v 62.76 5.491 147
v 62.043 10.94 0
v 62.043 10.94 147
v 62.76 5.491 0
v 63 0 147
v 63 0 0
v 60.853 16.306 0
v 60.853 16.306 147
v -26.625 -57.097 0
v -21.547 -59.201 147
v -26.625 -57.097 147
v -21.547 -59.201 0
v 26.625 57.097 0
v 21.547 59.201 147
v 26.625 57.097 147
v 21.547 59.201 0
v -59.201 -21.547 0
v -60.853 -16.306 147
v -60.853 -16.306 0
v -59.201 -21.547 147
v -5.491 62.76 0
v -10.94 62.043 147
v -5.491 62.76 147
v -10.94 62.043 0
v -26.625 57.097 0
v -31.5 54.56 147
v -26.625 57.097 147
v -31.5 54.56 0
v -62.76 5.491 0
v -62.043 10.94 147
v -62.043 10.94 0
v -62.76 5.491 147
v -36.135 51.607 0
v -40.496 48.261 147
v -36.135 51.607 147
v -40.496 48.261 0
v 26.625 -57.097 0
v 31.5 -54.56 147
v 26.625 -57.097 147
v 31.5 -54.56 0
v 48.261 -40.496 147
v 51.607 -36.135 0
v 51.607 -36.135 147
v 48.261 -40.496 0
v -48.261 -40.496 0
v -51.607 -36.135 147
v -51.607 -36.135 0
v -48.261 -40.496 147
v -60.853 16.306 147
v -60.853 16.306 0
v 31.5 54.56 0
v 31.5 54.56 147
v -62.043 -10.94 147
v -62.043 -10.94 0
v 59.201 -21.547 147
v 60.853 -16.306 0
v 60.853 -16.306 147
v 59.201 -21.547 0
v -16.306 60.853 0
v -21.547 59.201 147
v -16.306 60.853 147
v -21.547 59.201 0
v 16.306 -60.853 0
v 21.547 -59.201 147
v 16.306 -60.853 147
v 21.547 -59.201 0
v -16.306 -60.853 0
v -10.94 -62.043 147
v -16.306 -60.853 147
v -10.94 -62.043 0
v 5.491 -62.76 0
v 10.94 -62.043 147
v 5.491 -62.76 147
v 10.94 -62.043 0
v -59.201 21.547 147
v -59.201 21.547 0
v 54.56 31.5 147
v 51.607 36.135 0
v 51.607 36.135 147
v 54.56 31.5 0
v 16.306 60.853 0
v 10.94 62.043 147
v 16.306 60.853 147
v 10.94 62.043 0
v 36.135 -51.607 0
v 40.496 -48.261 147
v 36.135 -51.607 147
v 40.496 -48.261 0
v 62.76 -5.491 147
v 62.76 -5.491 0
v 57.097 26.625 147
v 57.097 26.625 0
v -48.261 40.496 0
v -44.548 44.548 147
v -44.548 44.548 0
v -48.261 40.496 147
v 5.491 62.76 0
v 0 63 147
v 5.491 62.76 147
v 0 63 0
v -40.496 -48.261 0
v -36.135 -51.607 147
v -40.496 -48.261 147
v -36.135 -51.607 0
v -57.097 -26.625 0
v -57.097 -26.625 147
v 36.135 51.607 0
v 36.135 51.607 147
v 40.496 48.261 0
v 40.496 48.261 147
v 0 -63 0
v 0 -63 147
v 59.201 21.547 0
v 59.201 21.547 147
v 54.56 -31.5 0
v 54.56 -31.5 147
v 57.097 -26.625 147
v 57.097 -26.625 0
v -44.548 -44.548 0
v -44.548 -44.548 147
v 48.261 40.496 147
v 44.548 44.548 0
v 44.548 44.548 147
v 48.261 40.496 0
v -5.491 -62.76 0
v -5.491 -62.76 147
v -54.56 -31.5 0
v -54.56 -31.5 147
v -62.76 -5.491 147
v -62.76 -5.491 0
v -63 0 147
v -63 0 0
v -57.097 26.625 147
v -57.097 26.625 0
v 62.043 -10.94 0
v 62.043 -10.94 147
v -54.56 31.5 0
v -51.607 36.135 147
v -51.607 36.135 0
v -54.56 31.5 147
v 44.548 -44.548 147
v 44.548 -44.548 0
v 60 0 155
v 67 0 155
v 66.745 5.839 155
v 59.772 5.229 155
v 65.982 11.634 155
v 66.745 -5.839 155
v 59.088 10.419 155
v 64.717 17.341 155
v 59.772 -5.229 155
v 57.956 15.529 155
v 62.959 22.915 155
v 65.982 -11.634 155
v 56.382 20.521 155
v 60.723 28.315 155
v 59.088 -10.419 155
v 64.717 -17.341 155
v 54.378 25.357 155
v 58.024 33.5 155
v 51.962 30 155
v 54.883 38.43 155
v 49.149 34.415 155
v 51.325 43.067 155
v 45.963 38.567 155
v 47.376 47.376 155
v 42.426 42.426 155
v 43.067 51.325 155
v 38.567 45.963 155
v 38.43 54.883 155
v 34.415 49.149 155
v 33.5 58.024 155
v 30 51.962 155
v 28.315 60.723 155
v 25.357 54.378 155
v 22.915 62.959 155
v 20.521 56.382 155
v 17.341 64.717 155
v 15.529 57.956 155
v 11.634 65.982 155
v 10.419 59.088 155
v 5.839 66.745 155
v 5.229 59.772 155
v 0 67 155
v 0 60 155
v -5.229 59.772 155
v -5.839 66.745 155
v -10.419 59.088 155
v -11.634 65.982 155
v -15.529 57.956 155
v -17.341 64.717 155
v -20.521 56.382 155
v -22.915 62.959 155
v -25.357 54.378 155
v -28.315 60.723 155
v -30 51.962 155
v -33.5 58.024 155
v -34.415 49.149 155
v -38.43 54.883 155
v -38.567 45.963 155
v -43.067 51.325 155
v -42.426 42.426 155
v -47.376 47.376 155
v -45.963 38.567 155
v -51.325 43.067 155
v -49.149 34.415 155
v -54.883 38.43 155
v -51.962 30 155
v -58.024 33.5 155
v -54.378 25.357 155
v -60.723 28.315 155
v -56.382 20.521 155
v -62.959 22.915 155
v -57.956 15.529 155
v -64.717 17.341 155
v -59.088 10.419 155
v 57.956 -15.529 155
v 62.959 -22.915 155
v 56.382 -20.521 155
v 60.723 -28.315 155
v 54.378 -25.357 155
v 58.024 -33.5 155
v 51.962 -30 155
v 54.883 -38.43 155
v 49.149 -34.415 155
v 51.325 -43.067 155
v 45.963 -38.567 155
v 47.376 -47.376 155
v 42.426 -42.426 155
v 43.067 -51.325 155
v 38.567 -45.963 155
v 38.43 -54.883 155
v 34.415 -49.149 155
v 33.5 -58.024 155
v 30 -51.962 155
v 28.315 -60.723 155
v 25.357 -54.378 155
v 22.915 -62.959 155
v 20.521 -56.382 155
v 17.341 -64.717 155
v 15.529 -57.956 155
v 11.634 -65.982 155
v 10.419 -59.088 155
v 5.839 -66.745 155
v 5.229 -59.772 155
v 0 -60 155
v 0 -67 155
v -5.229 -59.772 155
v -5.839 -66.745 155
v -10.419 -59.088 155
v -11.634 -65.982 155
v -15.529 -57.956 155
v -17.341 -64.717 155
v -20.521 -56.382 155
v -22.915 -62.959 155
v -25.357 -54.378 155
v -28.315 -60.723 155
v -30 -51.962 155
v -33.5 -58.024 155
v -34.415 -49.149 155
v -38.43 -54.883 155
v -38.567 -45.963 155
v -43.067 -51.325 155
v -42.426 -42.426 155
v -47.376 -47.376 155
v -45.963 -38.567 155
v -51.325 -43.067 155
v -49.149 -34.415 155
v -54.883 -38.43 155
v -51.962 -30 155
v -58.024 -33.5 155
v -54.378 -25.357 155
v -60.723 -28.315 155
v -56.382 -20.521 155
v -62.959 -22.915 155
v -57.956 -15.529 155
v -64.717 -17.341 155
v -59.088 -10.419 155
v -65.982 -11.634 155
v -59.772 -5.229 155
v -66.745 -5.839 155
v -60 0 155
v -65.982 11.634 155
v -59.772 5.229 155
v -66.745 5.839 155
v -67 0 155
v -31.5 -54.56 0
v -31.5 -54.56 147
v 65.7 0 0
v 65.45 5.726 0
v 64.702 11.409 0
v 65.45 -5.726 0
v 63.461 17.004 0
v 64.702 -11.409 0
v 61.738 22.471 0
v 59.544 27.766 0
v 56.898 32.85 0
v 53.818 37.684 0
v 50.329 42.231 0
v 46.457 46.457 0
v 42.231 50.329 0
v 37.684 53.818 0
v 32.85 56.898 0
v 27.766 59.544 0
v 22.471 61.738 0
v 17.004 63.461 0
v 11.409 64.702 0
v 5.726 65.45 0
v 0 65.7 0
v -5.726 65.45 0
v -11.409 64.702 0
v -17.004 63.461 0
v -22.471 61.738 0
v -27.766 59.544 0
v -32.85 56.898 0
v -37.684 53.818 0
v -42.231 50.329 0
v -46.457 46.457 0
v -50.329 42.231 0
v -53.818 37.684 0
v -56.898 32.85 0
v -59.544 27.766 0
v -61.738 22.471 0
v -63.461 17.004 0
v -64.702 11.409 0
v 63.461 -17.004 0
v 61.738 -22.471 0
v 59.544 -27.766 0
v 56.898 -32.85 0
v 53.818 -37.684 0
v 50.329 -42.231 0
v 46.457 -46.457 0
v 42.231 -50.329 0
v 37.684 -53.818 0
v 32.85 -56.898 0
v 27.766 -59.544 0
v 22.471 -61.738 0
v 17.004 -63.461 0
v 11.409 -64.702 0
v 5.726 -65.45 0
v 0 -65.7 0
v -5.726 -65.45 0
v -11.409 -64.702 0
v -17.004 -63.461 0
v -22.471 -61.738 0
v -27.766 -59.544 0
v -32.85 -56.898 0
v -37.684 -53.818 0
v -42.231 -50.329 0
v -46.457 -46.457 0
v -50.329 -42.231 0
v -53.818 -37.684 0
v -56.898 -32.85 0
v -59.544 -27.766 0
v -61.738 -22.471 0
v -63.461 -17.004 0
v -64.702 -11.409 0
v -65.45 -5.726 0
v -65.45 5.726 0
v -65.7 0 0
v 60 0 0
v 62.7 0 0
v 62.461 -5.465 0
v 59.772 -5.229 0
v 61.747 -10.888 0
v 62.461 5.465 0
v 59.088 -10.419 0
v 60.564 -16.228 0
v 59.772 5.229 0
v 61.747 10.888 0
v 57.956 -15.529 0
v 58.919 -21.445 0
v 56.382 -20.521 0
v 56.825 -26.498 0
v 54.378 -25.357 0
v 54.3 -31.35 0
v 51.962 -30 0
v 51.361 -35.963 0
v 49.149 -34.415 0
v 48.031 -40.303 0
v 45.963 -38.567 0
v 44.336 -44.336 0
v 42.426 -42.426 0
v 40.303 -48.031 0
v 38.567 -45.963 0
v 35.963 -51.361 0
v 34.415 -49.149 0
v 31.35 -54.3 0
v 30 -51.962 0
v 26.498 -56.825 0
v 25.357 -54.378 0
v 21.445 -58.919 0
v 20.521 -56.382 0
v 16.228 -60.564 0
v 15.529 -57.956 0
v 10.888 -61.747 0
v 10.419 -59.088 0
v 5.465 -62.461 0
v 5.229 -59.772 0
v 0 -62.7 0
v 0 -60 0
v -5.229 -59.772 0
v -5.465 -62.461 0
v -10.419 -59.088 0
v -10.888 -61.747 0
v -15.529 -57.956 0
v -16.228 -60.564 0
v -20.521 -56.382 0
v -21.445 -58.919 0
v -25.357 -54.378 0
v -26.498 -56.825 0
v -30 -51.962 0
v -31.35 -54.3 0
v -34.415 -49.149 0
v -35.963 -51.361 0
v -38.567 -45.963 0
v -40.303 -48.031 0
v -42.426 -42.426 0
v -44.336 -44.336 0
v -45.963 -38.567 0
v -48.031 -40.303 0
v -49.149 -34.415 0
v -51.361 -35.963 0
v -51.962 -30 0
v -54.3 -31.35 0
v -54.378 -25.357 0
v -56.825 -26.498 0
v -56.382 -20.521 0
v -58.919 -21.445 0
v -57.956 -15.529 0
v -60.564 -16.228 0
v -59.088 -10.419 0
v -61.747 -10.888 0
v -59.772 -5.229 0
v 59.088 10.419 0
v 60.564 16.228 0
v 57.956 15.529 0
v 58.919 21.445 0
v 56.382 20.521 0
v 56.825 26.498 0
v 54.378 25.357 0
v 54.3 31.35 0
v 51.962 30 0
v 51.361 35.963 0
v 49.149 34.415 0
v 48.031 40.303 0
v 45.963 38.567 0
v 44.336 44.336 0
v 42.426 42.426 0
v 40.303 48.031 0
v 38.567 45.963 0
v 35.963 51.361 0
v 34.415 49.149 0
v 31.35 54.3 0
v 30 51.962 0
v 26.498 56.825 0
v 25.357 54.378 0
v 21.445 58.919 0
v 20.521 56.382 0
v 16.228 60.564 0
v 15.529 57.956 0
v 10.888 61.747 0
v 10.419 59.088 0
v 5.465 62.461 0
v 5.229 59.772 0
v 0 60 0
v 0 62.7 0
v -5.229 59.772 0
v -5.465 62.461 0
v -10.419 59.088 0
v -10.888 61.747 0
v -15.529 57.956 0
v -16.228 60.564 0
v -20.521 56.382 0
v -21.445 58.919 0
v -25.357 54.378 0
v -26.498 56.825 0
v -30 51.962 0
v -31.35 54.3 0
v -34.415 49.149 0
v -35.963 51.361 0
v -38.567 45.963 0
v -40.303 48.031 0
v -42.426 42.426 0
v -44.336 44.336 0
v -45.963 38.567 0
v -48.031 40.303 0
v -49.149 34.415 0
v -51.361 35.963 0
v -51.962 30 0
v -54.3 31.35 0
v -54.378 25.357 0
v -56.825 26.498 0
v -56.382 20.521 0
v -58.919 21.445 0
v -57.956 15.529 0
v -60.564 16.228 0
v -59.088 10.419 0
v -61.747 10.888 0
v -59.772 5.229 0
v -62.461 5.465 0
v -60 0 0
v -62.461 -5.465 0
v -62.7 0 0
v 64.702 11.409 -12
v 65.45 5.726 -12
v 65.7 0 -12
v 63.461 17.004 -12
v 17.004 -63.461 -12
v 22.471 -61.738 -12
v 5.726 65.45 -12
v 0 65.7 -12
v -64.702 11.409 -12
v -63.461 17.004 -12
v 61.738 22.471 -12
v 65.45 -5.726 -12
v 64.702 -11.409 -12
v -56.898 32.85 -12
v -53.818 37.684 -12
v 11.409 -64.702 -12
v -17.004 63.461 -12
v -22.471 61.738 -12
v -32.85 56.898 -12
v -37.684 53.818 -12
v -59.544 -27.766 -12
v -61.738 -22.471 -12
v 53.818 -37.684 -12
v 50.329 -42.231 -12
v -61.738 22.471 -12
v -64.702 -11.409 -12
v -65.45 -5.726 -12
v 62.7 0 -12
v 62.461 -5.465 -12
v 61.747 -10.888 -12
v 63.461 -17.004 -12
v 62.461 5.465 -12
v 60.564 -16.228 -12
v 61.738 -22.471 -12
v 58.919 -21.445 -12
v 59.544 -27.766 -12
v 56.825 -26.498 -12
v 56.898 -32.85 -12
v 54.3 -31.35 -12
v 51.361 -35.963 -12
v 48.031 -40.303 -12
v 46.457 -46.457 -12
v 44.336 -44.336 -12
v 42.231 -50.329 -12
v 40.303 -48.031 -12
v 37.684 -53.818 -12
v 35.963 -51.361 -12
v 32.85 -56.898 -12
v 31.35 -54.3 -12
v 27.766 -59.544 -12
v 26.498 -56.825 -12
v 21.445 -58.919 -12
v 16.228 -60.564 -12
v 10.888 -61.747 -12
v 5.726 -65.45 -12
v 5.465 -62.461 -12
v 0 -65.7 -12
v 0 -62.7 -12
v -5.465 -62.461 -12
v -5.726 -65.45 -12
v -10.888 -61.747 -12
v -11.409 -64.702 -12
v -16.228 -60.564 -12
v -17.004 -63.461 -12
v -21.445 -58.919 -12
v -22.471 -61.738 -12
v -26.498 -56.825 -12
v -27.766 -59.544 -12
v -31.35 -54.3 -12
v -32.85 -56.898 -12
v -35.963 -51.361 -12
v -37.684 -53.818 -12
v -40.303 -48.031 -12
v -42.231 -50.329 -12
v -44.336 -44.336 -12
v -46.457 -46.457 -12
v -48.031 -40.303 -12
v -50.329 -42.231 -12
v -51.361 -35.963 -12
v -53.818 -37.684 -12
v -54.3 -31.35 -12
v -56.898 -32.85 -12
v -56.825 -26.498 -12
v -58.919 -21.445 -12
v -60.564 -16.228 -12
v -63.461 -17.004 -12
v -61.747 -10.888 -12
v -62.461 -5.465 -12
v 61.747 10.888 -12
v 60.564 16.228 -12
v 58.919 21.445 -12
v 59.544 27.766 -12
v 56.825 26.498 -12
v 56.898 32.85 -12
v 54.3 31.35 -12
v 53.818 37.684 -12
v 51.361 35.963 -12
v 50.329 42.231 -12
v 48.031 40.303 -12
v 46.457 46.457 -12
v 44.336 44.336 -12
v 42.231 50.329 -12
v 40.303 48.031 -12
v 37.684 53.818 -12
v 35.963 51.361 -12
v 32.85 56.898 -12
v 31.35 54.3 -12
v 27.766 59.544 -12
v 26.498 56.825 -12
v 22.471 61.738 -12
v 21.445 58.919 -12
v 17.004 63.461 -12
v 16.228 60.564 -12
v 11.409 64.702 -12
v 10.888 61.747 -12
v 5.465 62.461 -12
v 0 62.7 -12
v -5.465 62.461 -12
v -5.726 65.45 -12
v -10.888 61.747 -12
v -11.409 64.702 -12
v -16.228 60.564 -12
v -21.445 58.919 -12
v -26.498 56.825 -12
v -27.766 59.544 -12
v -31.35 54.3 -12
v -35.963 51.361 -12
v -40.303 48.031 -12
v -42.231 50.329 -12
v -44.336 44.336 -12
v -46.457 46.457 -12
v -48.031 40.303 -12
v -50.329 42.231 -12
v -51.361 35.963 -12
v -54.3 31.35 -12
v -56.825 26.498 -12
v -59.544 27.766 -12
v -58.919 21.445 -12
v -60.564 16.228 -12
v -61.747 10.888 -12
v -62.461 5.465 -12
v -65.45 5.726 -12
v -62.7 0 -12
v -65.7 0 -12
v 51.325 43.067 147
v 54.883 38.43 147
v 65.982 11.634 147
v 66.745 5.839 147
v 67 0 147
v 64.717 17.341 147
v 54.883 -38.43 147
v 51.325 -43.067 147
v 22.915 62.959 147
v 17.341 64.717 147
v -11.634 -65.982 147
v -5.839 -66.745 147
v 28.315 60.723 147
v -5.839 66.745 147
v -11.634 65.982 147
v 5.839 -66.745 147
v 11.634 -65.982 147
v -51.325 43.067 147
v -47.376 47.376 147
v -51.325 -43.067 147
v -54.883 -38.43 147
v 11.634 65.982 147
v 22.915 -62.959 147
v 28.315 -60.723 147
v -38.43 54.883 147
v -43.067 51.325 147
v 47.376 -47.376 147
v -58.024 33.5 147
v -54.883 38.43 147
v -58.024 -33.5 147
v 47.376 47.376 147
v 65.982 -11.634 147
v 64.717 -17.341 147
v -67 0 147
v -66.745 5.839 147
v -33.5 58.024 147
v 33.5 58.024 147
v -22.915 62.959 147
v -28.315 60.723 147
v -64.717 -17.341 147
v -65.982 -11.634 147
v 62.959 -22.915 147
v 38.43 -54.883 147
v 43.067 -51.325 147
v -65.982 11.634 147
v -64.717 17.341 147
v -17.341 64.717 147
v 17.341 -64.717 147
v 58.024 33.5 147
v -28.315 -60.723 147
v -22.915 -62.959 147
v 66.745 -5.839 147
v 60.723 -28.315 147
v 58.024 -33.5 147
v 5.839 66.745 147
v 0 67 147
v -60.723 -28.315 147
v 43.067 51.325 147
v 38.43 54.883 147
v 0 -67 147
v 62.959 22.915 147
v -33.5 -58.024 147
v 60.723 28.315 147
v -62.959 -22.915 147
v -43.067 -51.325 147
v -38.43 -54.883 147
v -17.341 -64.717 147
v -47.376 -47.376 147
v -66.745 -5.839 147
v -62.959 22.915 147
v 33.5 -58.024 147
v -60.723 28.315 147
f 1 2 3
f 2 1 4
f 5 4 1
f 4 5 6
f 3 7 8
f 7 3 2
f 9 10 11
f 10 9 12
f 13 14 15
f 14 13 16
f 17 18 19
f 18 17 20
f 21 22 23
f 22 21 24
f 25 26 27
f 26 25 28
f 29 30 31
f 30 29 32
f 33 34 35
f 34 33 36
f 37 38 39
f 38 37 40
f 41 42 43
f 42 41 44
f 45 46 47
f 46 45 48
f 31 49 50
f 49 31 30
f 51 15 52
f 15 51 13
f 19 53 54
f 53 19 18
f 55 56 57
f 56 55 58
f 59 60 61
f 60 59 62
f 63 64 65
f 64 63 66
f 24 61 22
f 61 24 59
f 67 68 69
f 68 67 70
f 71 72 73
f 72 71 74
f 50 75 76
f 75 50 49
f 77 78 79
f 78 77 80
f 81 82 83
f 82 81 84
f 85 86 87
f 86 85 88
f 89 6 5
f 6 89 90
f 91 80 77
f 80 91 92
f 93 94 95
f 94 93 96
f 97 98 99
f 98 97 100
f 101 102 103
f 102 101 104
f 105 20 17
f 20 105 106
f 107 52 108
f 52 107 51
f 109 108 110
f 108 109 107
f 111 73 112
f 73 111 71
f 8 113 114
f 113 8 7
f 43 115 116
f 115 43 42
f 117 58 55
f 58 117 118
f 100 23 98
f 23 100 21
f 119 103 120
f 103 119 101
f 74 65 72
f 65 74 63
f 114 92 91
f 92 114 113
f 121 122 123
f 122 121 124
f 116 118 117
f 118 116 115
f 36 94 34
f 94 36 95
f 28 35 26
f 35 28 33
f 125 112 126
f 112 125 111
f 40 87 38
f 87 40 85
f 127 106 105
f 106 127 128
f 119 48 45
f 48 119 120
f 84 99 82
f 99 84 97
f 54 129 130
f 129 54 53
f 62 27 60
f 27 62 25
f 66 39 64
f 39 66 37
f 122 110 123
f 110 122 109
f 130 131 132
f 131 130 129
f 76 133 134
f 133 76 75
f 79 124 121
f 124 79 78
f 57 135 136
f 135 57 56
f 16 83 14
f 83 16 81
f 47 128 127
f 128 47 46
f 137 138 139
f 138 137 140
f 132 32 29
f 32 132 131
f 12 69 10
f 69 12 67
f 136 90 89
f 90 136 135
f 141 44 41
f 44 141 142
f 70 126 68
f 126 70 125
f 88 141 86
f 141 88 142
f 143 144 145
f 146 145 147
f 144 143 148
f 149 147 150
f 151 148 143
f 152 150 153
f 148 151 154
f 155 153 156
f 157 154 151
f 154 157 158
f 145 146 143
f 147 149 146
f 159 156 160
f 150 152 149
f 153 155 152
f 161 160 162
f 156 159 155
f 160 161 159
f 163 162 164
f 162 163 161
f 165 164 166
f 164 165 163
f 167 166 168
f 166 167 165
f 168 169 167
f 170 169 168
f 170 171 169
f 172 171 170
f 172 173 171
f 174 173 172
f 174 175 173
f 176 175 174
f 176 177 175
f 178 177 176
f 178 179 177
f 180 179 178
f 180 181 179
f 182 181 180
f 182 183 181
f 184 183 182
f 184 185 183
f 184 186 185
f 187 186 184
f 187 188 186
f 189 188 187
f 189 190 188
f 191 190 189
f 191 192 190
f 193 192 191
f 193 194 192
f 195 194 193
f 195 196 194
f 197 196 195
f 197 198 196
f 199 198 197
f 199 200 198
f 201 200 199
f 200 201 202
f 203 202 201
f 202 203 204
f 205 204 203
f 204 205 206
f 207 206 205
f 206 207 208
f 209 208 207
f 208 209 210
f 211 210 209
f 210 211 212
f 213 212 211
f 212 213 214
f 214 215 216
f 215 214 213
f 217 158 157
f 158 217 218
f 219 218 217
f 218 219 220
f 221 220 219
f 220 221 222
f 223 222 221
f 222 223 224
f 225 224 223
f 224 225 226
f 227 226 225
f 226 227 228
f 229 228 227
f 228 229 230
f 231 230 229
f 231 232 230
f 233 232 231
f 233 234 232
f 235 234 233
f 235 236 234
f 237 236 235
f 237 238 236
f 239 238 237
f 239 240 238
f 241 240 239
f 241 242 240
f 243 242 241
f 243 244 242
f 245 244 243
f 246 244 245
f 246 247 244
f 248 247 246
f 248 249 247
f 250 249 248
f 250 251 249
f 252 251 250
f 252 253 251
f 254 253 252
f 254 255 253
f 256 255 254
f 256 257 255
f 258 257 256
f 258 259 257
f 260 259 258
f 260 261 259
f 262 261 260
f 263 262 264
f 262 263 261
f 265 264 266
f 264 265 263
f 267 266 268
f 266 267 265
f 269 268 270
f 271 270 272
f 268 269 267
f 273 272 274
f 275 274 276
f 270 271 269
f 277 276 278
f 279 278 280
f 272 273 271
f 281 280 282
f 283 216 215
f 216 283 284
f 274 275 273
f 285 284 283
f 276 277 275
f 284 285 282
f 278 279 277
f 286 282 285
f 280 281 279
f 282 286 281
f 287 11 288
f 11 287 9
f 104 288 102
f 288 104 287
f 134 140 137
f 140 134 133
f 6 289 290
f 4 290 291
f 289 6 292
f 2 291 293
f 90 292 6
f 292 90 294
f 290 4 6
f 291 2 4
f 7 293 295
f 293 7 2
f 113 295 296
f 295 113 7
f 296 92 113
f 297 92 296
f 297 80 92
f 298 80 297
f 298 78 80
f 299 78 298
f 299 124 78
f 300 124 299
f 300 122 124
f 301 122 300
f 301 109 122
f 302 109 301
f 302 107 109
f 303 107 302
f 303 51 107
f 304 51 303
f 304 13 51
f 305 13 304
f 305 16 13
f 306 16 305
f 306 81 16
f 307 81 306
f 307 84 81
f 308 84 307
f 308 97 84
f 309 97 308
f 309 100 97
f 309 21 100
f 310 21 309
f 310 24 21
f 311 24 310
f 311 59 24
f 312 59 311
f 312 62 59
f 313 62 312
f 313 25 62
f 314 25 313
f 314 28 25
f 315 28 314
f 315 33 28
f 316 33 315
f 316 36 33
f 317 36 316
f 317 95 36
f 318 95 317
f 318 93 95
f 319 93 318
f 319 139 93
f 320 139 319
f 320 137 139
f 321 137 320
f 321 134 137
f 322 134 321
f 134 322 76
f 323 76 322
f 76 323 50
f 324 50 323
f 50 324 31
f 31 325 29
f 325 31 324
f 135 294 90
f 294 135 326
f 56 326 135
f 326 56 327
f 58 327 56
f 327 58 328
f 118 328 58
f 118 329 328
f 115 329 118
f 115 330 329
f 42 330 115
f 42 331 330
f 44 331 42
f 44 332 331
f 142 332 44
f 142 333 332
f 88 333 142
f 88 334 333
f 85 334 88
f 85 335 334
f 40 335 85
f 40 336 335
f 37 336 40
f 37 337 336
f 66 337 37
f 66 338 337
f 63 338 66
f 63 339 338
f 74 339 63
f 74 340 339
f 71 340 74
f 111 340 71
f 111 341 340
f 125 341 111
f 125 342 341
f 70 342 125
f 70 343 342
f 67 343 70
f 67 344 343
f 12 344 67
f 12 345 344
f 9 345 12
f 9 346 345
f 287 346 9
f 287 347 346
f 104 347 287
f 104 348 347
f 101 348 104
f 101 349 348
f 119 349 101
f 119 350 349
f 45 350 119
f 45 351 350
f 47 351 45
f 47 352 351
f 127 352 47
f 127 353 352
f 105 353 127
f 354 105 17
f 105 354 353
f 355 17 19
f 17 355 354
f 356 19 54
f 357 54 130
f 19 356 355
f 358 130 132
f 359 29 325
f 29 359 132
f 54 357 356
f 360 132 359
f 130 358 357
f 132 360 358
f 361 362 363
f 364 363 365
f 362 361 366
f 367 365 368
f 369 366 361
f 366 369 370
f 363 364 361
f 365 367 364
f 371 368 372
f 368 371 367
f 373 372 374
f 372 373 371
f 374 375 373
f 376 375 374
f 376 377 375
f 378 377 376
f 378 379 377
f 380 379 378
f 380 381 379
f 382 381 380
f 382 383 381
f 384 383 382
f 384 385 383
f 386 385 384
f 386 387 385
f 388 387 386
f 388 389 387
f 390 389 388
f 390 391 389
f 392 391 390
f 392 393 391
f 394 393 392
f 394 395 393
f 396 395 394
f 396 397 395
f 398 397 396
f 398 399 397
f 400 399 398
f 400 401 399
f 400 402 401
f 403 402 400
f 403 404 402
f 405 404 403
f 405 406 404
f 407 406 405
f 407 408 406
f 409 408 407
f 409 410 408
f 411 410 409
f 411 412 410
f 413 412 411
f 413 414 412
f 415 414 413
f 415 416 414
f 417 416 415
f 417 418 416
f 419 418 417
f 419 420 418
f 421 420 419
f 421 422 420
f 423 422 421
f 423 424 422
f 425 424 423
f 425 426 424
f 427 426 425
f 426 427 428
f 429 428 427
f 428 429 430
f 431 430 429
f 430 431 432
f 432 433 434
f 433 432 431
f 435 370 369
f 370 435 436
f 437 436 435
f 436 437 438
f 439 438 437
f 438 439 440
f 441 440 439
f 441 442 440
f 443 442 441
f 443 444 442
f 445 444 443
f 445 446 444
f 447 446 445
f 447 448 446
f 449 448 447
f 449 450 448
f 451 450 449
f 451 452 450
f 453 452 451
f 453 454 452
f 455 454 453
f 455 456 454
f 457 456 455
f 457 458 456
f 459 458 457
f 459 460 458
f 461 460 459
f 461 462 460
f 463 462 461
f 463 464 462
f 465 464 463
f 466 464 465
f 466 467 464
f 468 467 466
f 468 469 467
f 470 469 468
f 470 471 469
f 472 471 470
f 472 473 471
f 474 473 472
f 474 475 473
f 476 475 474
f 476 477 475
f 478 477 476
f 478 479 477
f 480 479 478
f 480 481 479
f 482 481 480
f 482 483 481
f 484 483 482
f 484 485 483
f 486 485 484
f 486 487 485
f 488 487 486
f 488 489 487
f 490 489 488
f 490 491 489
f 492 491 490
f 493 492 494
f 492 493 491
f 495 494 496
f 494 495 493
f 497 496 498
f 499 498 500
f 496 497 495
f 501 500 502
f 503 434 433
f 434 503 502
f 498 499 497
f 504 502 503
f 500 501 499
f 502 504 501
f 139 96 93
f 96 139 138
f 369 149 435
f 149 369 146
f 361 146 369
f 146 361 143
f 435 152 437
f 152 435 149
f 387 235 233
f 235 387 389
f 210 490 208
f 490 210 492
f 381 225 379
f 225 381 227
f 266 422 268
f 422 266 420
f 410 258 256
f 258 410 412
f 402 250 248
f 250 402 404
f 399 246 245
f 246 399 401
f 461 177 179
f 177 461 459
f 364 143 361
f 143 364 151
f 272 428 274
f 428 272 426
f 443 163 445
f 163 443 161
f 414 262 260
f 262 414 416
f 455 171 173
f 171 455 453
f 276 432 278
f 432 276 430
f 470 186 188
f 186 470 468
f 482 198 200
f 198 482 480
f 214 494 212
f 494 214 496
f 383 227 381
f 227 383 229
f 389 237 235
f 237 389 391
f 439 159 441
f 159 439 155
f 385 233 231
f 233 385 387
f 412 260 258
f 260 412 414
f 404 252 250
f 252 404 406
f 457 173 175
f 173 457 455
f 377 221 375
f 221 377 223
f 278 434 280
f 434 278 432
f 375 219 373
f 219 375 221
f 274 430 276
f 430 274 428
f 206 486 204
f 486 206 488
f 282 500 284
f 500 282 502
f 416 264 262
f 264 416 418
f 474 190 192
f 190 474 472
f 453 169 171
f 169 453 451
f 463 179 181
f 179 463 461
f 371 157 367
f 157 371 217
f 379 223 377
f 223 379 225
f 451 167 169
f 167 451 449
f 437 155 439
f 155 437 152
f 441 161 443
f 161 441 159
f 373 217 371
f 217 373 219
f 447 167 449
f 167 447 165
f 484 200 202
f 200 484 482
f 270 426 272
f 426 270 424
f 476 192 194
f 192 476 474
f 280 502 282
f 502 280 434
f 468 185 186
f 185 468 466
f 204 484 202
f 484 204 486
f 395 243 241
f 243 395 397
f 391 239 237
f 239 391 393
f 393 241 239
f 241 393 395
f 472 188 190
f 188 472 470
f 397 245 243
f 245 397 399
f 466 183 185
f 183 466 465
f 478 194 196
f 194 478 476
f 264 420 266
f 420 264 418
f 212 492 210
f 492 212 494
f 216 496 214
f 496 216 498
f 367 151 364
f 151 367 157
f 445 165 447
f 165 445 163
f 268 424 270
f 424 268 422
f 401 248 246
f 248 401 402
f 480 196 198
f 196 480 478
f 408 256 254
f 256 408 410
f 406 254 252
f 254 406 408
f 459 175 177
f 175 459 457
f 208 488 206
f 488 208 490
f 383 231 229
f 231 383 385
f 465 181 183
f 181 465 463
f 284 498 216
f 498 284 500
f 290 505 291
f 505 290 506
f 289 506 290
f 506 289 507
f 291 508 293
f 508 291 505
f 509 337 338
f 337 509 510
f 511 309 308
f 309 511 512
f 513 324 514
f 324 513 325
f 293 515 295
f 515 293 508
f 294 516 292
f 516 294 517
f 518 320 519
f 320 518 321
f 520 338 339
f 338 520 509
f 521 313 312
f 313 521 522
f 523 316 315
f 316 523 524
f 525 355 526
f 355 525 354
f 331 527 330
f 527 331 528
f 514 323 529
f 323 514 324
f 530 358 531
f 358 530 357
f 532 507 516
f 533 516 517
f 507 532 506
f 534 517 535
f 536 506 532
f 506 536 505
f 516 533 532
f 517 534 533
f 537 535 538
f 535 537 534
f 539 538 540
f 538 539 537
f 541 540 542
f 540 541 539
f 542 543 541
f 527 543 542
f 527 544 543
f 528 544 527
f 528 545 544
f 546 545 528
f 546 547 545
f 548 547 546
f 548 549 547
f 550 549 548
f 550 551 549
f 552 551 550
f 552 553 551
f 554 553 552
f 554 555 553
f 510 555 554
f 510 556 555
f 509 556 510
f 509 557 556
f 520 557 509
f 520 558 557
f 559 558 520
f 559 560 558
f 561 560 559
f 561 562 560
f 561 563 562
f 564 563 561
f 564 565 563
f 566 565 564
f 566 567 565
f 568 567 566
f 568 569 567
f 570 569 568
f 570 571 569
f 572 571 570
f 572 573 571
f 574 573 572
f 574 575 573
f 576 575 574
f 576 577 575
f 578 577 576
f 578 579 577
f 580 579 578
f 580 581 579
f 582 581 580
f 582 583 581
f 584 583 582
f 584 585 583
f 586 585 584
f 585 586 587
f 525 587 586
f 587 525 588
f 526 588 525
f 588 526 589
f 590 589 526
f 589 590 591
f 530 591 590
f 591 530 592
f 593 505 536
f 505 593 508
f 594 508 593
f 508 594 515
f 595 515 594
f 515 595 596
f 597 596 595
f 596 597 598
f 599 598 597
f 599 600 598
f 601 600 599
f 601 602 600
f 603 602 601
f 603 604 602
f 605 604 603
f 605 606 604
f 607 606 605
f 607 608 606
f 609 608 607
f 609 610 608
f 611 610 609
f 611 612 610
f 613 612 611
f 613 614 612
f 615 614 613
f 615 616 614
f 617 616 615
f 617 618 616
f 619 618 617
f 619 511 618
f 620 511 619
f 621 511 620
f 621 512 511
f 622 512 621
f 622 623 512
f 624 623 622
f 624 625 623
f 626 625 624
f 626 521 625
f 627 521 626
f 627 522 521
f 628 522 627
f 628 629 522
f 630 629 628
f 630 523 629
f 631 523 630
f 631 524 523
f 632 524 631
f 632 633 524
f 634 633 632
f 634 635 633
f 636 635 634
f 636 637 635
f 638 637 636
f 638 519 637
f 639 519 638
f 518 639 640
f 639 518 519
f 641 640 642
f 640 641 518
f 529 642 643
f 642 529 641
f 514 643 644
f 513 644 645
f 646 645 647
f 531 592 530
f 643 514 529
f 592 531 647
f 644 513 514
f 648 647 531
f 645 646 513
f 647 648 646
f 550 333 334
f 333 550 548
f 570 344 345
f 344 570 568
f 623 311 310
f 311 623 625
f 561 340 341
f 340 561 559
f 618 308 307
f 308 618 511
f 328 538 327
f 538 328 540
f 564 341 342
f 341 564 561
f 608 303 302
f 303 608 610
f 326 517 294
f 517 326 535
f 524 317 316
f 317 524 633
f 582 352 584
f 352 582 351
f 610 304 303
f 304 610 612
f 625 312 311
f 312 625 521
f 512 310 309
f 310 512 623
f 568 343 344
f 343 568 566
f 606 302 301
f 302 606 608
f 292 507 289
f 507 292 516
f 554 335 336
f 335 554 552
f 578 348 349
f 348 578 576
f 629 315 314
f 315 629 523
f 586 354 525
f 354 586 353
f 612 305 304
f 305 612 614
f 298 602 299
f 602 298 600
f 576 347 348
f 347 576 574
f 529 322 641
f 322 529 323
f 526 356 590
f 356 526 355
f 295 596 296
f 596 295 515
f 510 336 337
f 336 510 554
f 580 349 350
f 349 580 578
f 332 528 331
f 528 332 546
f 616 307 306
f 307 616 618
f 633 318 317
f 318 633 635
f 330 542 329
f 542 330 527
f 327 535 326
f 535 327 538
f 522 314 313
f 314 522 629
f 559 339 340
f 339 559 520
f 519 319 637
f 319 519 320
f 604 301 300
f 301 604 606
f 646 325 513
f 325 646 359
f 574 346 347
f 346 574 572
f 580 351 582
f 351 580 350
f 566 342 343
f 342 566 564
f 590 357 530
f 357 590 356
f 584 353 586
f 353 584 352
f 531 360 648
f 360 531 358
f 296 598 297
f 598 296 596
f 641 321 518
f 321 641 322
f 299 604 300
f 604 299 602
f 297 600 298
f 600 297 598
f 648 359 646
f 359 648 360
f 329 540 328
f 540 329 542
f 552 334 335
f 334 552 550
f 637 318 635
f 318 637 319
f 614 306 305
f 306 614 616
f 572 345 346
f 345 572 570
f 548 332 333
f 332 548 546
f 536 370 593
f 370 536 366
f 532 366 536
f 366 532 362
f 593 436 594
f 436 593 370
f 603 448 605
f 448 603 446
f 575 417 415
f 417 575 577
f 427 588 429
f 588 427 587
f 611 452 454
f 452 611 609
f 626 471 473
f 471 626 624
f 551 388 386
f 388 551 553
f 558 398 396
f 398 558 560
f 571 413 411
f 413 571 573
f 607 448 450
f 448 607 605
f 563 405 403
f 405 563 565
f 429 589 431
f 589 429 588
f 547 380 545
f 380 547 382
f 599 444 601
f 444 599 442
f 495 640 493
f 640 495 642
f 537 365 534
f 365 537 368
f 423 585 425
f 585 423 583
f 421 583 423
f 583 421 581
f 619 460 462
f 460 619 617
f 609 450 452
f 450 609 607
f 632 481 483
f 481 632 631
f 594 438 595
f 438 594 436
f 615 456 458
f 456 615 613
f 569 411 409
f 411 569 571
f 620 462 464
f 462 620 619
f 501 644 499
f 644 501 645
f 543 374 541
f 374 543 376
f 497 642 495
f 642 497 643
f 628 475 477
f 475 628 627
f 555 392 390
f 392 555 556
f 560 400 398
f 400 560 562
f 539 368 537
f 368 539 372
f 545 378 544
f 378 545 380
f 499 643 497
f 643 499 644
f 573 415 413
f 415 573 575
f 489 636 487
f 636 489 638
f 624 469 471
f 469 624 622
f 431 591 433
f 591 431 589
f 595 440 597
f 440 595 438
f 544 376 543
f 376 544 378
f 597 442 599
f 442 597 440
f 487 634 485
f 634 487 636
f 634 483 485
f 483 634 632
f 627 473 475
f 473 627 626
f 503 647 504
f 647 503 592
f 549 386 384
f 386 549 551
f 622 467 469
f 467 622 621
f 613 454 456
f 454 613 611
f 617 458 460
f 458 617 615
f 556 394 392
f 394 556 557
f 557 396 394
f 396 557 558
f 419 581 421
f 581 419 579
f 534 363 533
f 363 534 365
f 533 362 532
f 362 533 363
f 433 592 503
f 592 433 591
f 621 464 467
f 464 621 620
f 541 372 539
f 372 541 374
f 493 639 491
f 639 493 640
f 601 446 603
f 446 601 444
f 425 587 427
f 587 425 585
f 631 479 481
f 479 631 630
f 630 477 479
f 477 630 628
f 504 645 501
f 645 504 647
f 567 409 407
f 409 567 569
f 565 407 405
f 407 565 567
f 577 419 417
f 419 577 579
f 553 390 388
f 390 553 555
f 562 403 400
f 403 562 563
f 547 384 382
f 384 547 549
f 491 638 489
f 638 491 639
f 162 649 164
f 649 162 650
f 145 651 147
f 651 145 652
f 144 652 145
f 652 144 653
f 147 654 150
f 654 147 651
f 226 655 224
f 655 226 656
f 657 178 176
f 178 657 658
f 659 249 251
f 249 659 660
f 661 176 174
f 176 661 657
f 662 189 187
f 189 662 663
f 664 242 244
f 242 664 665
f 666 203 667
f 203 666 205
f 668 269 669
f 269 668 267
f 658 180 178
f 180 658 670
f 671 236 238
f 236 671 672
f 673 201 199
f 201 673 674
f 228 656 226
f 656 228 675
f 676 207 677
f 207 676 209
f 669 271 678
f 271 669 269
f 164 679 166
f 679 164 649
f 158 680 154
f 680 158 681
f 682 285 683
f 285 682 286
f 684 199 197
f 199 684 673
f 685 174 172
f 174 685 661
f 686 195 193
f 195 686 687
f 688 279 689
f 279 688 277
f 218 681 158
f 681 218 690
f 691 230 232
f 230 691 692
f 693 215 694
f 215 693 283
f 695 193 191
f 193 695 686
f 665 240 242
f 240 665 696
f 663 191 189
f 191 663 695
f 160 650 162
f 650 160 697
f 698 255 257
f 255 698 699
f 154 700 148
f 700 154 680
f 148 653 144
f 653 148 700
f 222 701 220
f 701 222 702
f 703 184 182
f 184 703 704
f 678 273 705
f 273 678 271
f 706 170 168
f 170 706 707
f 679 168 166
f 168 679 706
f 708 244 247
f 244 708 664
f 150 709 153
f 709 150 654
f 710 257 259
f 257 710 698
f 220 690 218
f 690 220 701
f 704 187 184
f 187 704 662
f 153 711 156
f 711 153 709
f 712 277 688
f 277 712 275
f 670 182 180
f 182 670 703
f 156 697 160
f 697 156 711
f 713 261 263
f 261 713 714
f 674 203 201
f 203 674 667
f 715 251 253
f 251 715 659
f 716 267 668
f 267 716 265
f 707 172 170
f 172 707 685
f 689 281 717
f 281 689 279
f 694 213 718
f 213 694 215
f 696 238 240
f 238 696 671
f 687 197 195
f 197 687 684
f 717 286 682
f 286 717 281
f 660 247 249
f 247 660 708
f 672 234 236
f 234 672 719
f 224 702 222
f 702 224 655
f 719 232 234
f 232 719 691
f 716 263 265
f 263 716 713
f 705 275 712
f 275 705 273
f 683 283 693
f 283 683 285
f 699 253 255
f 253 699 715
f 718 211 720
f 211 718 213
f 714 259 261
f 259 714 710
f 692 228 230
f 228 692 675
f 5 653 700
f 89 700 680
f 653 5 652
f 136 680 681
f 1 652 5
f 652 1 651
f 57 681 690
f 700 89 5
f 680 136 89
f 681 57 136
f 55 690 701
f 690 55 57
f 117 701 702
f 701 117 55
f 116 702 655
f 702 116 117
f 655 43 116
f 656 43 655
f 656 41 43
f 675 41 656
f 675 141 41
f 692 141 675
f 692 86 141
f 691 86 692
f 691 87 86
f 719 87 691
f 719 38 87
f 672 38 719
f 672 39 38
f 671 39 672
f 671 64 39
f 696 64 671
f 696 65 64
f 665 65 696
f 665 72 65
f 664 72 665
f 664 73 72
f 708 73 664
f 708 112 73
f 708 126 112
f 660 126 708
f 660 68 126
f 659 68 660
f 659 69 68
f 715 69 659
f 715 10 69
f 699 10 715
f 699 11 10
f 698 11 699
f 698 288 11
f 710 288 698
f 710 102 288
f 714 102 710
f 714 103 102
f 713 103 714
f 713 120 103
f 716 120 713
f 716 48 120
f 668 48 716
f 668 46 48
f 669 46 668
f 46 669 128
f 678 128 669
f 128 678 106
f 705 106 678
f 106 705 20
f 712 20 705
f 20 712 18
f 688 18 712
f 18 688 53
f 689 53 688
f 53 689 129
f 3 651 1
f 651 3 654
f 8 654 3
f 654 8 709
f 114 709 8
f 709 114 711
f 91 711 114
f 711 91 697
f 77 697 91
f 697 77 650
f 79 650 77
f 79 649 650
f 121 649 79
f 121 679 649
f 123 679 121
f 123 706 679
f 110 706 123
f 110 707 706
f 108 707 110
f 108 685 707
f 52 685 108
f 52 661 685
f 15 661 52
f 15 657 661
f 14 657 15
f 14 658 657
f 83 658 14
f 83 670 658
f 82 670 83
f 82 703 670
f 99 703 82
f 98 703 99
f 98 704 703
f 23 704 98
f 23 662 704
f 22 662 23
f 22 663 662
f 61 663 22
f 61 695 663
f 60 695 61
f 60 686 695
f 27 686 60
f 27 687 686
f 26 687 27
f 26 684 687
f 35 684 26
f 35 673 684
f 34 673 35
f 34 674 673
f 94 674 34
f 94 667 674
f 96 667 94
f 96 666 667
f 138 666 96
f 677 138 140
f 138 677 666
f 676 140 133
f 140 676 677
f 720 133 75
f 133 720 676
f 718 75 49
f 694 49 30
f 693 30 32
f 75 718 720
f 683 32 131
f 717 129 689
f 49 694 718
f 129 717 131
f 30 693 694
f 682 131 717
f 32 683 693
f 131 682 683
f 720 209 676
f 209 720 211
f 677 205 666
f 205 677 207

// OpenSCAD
// s_edf_120_thrust_tube.scad
// Thrust tube for Serenity Rev N 120mm rear EDF.
//
// Remixed from Thingiverse thing:2838324 (120mm fuselage EDF).
// This tube channels exhaust from the EDF exit face through the
// aft fuselage (station ~440mm) to the rear iris nozzle (station ~600mm).
//
// Coordinate system: +Z = aft (exhaust direction).
// Z=0 = forward face of thrust tube (mates to EDF casing aft lip / motor mount ring).
// Z=TUBE_L = aft bonding face (mates to rear_nozzle_frame.stl base ring).
//
// Integration interfaces:
//   Forward (Z=0):     forward spigot ID = EDF casing OD; locates tube on EDF exit.
//   Aft (Z=TUBE_L):    bonding flange ring bonds to rear_nozzle_frame.stl base.
//
// Station reference (from nose):
//   Station ~440mm: EDF exhaust face → Z=0 of this part
//   Station ~600mm: rear nozzle frame base → Z=TUBE_L
//   Total span: ~160mm → TUBE_L = 155mm (5mm overlap at each end)
//
// Print: PETG, 0.20mm layers, 20% gyroid infill.
// Note: orient with tube axis vertical on printer for best layer adhesion.
// No support required if printed tube-axis vertical.

// ── Geometry parameters ────────────────────────────────────────────────────

BORE_ID      = 120;   // [mm] internal bore (matches EDF fan bore)
WALL         =   3;   // [mm] tube wall thickness → OD = BORE_ID + 2×WALL
TUBE_L       = 155;   // [mm] total tube length (see station notes above)

// Forward spigot: thin sleeve that slips over the EDF casing aft OD
// The EDF casing outer diameter is nominally ~125mm (varies by brand);
// adjust SPIGOT_ID if your 120mm EDF casing OD differs.
EDF_CASING_OD = 125;  // [mm] EDF casing outer diameter — adjust to match actual unit
SPIGOT_ID     = EDF_CASING_OD + 0.4; // slip-fit clearance
SPIGOT_WALL   =   3;  // [mm] spigot sleeve wall
SPIGOT_L      =  12;  // [mm] spigot engagement length (overlaps EDF casing)

// Aft bonding flange: widens to grip against rear_nozzle_frame.stl base ring.
// rear_nozzle_frame base ring inner bore is assumed ~128mm — verify in slicer.
FLANGE_OD     = 134;  // [mm] bonding flange outer diameter
FLANGE_L      =   8;  // [mm] axial depth of bonding flange

// Lightening slots in tube wall (optional aero/mass reduction — set to 0 to disable)
SLOT_COUNT    =   0;  // number of axial slots in tube wall (0 = solid tube)
SLOT_W        =   8;  // [mm] slot width
SLOT_L        = 100;  // [mm] slot length (centred on tube)

$fn = 72;

// ── Derived values ─────────────────────────────────────────────────────────

TUBE_OD = BORE_ID + 2 * WALL;          // = 126mm
SPIGOT_OD = SPIGOT_ID + 2 * SPIGOT_WALL;

// ── Modules ────────────────────────────────────────────────────────────────

module main_tube() {
    difference() {
        cylinder(h = TUBE_L, r = TUBE_OD / 2);
        // bore
        translate([0, 0, -0.5])
            cylinder(h = TUBE_L + 1, r = BORE_ID / 2);
        // axial lightening slots
        if (SLOT_COUNT > 0)
            for (i = [0 : SLOT_COUNT - 1])
                rotate([0, 0, i * 360 / SLOT_COUNT])
                translate([TUBE_OD / 2 - WALL / 2, 0, TUBE_L / 2])
                    cube([WALL + 1, SLOT_W, SLOT_L], center = true);
    }
}

module forward_spigot() {
    // sleeve at Z=0 end that overlaps EDF casing aft lip
    difference() {
        cylinder(h = SPIGOT_L, r = SPIGOT_OD / 2);
        // inner bore clears EDF casing
        translate([0, 0, -0.5])
            cylinder(h = SPIGOT_L + 1, r = SPIGOT_ID / 2);
    }
}

module aft_bonding_flange() {
    // thickened ring at aft end for epoxy bond to rear_nozzle_frame base ring
    translate([0, 0, TUBE_L - FLANGE_L])
    difference() {
        cylinder(h = FLANGE_L, r = FLANGE_OD / 2);
        translate([0, 0, -0.5])
            cylinder(h = FLANGE_L + 1, r = BORE_ID / 2);
    }
}

// ── Assembly ───────────────────────────────────────────────────────────────

union() {
    main_tube();
    // forward spigot protrudes in the −Z direction (over EDF casing)
    translate([0, 0, -SPIGOT_L])
        forward_spigot();
    aft_bonding_flange();
}
